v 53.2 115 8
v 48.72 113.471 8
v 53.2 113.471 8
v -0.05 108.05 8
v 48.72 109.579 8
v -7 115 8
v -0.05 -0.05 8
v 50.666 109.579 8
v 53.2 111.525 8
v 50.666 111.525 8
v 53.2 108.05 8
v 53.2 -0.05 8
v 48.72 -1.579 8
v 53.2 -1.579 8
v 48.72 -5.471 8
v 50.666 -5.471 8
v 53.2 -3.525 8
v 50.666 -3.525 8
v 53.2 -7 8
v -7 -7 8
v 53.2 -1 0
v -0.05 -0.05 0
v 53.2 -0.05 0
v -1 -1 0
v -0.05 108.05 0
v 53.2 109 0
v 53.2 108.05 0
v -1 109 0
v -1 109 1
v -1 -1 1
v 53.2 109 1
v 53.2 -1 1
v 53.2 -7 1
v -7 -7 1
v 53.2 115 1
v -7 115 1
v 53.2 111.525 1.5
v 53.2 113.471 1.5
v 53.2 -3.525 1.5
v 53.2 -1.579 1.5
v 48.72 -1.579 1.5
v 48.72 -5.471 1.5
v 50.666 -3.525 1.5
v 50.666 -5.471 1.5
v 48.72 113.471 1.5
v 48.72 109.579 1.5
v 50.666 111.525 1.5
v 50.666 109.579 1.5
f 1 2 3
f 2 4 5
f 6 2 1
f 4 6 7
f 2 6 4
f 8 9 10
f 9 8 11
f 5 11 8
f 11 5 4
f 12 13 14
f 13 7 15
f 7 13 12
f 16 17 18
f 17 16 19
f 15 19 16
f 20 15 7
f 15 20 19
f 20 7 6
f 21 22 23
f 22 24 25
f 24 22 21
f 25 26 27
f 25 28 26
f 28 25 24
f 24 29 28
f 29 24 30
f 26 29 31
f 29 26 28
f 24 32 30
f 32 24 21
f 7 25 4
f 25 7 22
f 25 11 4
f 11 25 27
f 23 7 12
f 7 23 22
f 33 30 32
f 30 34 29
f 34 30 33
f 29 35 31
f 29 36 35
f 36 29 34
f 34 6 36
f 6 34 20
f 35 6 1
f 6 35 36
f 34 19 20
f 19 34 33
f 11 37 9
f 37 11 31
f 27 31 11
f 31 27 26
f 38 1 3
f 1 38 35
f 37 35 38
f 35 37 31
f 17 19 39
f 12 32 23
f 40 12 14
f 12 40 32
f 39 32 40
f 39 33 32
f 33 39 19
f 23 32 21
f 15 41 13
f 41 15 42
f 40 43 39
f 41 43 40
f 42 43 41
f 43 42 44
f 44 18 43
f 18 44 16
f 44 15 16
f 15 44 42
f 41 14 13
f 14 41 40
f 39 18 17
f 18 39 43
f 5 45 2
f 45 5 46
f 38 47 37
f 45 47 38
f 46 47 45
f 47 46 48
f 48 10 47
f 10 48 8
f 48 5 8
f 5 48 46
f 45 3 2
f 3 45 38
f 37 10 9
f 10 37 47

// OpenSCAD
// Generated by SolidPython 1.0.4 on 2021-01-19 16:05:13


difference() {
	difference() {
		difference() {
			union() {
				difference() {
					translate(v = [-1.0000000000, -1.0000000000, 0]) {
						cube(size = [74.0000000000, 110.0000000000, 8]);
					}
					translate(v = [-0.0500000000, -0.0500000000, 0]) {
						cube(size = [72.1000000000, 108.1000000000, 8]);
					}
				}
				translate(v = [0, 0, 1]) {
					difference() {
						translate(v = [-7.0000000000, -7.0000000000, 0]) {
							cube(size = [86.0000000000, 122.0000000000, 7]);
						}
						translate(v = [-1.0000000000, -1.0000000000, 0]) {
							cube(size = [74.0000000000, 110.0000000000, 7]);
						}
					}
				}
			}
			translate(v = [53.2000000000, -7.0000000000, 0]) {
				cube(size = [25.8000000000, 122.0000000000, 8]);
			}
		}
		translate(v = [49.2000000000, -5.4710000000, 0]) {
			translate(v = [-0.4800000000, 0, 1.5000000000]) {
				scale(v = [1.1200000000, 1.1200000000, 1]) {
					translate(v = [4, 3.4750000000, 0]) {
						rotate(a = -180) {
							union() {
								translate(v = [2.2625000000, 0, 0]) {
									cube(size = [1.7375000000, 3.4750000000, 6.5000000000]);
								}
								cube(size = [4, 1.7375000000, 6.5000000000]);
							}
						}
					}
				}
			}
		}
	}
	translate(v = [49.2000000000, 109.5790000000, 0]) {
		translate(v = [-0.4800000000, 0, 1.5000000000]) {
			scale(v = [1.1200000000, 1.1200000000, 1]) {
				translate(v = [4, 3.4750000000, 0]) {
					rotate(a = -180) {
						union() {
							translate(v = [2.2625000000, 0, 0]) {
								cube(size = [1.7375000000, 3.4750000000, 6.5000000000]);
							}
							cube(size = [4, 1.7375000000, 6.5000000000]);
						}
					}
				}
			}
		}
	}
}
